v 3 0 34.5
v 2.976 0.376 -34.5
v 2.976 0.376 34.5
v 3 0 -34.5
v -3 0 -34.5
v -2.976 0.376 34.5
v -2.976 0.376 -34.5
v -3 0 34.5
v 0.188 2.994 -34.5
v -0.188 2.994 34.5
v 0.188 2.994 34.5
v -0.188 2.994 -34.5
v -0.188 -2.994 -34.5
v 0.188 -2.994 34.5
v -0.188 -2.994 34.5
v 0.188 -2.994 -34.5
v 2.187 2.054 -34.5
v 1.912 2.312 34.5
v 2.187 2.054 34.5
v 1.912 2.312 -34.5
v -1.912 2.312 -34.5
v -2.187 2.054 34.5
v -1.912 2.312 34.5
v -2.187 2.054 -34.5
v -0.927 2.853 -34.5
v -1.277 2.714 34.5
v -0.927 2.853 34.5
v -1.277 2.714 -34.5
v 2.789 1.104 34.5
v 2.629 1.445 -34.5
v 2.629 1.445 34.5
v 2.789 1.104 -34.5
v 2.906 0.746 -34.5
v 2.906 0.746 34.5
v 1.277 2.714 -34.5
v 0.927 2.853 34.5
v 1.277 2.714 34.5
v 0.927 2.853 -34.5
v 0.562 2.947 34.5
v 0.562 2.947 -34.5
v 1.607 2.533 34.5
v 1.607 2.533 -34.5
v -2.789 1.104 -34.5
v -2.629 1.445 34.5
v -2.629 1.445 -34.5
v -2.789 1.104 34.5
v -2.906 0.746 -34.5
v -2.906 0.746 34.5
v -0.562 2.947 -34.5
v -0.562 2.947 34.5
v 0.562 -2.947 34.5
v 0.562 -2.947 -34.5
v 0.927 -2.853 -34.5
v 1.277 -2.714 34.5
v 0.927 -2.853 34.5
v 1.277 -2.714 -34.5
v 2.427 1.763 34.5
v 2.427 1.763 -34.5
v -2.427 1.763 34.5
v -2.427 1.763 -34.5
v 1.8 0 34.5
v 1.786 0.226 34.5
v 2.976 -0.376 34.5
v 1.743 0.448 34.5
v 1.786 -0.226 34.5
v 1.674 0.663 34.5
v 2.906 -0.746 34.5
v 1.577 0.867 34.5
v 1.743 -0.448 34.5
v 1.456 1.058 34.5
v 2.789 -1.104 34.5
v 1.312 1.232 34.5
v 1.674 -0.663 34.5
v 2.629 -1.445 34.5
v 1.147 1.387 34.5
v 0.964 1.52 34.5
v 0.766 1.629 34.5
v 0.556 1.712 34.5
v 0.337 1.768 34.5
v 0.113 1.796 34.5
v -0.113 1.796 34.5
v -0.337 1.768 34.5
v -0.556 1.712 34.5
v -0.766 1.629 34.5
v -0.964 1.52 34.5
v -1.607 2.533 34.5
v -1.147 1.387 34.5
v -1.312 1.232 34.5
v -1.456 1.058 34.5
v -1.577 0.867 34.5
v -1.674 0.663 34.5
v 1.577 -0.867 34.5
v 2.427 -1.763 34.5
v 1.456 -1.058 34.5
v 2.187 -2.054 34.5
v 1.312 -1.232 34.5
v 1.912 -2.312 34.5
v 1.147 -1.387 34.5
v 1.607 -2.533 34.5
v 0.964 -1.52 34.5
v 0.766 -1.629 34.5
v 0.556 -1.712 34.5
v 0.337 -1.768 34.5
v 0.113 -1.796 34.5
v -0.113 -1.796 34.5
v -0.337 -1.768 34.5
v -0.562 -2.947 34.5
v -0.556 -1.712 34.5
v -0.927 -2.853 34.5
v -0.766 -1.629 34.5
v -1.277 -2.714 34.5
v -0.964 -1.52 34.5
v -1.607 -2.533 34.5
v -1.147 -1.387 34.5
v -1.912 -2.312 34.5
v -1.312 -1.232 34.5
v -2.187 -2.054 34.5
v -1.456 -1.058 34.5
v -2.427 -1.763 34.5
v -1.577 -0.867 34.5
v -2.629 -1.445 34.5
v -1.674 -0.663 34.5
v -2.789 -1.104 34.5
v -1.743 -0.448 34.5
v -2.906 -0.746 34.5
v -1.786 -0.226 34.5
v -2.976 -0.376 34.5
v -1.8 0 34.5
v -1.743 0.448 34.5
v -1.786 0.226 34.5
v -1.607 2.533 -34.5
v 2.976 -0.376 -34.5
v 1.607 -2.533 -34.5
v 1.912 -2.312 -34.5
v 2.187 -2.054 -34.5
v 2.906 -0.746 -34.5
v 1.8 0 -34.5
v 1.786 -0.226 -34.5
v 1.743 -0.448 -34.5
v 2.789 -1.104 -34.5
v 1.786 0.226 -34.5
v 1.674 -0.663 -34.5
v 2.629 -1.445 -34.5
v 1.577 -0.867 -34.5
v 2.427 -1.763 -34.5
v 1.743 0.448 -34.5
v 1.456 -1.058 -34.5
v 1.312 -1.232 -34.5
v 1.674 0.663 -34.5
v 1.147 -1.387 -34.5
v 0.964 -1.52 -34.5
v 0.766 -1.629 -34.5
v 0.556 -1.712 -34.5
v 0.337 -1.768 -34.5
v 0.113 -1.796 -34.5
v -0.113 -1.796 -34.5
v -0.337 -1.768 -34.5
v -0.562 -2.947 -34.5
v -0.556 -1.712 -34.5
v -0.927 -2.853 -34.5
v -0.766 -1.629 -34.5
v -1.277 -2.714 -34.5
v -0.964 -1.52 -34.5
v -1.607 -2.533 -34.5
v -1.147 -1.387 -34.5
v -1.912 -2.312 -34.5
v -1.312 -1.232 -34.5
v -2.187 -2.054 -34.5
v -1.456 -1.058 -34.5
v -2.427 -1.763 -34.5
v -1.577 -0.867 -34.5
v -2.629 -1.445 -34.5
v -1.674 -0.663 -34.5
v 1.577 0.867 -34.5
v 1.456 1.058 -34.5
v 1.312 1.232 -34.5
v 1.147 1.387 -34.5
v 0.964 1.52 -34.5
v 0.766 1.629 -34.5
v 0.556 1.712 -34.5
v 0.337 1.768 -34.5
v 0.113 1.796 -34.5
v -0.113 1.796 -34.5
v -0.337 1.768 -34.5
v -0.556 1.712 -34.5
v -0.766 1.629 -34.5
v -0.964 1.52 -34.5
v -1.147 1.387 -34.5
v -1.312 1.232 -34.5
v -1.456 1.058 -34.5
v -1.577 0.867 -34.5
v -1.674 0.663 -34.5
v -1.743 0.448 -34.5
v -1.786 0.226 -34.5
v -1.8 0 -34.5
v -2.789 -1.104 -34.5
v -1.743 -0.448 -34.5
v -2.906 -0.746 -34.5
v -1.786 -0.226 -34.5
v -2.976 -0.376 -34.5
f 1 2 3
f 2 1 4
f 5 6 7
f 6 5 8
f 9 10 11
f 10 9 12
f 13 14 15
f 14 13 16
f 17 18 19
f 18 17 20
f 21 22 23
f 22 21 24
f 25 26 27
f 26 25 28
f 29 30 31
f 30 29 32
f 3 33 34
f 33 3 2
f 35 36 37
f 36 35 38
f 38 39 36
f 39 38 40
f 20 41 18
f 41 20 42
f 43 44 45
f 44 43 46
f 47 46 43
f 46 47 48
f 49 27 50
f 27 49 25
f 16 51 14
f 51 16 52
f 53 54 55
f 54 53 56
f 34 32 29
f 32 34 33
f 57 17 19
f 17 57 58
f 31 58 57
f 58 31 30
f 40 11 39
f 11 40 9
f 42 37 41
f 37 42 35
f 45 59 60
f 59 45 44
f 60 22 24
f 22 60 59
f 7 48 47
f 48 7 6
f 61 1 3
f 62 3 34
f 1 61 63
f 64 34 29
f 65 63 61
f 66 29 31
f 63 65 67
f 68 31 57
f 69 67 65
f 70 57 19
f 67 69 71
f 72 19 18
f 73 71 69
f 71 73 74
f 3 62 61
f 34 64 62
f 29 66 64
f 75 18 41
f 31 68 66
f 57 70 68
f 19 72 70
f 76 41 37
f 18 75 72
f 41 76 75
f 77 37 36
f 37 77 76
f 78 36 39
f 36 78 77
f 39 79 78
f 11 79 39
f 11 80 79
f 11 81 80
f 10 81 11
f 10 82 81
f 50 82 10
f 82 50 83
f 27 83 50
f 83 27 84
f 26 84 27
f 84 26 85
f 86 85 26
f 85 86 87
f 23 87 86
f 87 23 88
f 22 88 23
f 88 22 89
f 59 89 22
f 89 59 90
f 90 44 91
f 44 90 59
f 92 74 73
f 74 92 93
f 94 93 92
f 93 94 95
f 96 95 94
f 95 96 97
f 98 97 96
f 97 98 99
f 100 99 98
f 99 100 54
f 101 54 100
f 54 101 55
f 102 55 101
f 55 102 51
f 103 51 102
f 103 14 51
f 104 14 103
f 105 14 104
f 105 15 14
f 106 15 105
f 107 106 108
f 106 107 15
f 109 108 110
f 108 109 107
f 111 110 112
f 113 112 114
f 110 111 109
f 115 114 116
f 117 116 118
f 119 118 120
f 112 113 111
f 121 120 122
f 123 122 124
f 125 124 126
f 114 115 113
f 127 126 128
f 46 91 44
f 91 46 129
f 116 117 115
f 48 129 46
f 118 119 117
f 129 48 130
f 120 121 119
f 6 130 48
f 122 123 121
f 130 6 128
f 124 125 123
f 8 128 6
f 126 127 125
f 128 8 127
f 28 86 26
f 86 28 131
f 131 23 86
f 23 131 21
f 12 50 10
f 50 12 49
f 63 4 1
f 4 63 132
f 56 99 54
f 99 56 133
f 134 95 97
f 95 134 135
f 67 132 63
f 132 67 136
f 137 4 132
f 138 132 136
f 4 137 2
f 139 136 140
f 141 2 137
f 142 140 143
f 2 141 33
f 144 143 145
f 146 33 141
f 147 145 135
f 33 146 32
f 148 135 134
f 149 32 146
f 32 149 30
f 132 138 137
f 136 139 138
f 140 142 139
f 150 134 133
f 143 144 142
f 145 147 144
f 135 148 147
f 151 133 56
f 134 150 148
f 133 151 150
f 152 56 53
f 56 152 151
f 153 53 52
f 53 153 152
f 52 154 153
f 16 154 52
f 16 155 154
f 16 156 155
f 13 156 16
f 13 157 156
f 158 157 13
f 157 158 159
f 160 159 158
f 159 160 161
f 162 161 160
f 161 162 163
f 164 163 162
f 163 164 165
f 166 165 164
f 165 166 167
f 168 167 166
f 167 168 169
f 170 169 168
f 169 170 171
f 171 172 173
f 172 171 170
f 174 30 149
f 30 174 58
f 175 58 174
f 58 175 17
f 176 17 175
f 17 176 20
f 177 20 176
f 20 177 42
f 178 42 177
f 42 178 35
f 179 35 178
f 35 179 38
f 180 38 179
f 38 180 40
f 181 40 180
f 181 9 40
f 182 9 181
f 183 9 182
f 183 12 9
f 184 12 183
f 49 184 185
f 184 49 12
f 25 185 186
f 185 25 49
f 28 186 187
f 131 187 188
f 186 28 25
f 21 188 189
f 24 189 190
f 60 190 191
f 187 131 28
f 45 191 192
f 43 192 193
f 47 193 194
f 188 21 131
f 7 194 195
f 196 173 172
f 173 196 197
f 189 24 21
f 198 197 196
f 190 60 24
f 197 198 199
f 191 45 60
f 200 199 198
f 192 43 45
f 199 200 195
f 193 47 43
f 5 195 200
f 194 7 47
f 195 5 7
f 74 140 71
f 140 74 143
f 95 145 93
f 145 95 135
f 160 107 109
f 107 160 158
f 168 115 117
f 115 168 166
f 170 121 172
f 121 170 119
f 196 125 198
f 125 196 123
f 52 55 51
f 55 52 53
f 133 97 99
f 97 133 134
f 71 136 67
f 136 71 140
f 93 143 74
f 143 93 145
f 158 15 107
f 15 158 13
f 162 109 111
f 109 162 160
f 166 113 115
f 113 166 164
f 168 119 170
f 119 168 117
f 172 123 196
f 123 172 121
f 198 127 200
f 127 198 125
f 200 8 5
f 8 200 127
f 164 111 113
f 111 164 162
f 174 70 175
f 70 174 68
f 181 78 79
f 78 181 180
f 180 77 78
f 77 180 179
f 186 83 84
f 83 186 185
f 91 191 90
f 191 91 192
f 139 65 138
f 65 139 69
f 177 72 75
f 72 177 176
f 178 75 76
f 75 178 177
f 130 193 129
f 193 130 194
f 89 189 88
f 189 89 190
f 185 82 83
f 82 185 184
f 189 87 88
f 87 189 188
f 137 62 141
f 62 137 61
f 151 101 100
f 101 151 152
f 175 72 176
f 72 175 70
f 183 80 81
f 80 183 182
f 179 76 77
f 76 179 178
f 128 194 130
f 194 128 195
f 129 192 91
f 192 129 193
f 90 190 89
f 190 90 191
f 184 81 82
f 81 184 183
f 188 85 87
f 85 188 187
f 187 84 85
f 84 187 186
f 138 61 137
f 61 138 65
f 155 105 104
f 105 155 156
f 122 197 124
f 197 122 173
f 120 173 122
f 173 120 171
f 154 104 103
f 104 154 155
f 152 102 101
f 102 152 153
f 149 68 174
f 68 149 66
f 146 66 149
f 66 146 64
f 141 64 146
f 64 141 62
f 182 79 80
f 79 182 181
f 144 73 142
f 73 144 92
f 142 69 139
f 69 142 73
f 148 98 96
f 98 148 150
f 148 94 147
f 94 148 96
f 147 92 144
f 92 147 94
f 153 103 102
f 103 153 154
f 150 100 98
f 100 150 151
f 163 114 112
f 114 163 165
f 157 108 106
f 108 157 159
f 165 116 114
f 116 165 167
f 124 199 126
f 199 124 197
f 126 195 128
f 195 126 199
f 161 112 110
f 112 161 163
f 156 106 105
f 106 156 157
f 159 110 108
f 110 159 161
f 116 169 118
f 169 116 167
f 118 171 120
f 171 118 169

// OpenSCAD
$fn = 50;


difference() {
	union() {
		translate(v = [0, 0, -34.5000000000]) {
			cylinder(h = 69, r = 3.0000000000);
		}
	}
	union() {
		translate(v = [0, 0, -100.0000000000]) {
			cylinder(h = 200, r = 1.8000000000);
		}
	}
}
